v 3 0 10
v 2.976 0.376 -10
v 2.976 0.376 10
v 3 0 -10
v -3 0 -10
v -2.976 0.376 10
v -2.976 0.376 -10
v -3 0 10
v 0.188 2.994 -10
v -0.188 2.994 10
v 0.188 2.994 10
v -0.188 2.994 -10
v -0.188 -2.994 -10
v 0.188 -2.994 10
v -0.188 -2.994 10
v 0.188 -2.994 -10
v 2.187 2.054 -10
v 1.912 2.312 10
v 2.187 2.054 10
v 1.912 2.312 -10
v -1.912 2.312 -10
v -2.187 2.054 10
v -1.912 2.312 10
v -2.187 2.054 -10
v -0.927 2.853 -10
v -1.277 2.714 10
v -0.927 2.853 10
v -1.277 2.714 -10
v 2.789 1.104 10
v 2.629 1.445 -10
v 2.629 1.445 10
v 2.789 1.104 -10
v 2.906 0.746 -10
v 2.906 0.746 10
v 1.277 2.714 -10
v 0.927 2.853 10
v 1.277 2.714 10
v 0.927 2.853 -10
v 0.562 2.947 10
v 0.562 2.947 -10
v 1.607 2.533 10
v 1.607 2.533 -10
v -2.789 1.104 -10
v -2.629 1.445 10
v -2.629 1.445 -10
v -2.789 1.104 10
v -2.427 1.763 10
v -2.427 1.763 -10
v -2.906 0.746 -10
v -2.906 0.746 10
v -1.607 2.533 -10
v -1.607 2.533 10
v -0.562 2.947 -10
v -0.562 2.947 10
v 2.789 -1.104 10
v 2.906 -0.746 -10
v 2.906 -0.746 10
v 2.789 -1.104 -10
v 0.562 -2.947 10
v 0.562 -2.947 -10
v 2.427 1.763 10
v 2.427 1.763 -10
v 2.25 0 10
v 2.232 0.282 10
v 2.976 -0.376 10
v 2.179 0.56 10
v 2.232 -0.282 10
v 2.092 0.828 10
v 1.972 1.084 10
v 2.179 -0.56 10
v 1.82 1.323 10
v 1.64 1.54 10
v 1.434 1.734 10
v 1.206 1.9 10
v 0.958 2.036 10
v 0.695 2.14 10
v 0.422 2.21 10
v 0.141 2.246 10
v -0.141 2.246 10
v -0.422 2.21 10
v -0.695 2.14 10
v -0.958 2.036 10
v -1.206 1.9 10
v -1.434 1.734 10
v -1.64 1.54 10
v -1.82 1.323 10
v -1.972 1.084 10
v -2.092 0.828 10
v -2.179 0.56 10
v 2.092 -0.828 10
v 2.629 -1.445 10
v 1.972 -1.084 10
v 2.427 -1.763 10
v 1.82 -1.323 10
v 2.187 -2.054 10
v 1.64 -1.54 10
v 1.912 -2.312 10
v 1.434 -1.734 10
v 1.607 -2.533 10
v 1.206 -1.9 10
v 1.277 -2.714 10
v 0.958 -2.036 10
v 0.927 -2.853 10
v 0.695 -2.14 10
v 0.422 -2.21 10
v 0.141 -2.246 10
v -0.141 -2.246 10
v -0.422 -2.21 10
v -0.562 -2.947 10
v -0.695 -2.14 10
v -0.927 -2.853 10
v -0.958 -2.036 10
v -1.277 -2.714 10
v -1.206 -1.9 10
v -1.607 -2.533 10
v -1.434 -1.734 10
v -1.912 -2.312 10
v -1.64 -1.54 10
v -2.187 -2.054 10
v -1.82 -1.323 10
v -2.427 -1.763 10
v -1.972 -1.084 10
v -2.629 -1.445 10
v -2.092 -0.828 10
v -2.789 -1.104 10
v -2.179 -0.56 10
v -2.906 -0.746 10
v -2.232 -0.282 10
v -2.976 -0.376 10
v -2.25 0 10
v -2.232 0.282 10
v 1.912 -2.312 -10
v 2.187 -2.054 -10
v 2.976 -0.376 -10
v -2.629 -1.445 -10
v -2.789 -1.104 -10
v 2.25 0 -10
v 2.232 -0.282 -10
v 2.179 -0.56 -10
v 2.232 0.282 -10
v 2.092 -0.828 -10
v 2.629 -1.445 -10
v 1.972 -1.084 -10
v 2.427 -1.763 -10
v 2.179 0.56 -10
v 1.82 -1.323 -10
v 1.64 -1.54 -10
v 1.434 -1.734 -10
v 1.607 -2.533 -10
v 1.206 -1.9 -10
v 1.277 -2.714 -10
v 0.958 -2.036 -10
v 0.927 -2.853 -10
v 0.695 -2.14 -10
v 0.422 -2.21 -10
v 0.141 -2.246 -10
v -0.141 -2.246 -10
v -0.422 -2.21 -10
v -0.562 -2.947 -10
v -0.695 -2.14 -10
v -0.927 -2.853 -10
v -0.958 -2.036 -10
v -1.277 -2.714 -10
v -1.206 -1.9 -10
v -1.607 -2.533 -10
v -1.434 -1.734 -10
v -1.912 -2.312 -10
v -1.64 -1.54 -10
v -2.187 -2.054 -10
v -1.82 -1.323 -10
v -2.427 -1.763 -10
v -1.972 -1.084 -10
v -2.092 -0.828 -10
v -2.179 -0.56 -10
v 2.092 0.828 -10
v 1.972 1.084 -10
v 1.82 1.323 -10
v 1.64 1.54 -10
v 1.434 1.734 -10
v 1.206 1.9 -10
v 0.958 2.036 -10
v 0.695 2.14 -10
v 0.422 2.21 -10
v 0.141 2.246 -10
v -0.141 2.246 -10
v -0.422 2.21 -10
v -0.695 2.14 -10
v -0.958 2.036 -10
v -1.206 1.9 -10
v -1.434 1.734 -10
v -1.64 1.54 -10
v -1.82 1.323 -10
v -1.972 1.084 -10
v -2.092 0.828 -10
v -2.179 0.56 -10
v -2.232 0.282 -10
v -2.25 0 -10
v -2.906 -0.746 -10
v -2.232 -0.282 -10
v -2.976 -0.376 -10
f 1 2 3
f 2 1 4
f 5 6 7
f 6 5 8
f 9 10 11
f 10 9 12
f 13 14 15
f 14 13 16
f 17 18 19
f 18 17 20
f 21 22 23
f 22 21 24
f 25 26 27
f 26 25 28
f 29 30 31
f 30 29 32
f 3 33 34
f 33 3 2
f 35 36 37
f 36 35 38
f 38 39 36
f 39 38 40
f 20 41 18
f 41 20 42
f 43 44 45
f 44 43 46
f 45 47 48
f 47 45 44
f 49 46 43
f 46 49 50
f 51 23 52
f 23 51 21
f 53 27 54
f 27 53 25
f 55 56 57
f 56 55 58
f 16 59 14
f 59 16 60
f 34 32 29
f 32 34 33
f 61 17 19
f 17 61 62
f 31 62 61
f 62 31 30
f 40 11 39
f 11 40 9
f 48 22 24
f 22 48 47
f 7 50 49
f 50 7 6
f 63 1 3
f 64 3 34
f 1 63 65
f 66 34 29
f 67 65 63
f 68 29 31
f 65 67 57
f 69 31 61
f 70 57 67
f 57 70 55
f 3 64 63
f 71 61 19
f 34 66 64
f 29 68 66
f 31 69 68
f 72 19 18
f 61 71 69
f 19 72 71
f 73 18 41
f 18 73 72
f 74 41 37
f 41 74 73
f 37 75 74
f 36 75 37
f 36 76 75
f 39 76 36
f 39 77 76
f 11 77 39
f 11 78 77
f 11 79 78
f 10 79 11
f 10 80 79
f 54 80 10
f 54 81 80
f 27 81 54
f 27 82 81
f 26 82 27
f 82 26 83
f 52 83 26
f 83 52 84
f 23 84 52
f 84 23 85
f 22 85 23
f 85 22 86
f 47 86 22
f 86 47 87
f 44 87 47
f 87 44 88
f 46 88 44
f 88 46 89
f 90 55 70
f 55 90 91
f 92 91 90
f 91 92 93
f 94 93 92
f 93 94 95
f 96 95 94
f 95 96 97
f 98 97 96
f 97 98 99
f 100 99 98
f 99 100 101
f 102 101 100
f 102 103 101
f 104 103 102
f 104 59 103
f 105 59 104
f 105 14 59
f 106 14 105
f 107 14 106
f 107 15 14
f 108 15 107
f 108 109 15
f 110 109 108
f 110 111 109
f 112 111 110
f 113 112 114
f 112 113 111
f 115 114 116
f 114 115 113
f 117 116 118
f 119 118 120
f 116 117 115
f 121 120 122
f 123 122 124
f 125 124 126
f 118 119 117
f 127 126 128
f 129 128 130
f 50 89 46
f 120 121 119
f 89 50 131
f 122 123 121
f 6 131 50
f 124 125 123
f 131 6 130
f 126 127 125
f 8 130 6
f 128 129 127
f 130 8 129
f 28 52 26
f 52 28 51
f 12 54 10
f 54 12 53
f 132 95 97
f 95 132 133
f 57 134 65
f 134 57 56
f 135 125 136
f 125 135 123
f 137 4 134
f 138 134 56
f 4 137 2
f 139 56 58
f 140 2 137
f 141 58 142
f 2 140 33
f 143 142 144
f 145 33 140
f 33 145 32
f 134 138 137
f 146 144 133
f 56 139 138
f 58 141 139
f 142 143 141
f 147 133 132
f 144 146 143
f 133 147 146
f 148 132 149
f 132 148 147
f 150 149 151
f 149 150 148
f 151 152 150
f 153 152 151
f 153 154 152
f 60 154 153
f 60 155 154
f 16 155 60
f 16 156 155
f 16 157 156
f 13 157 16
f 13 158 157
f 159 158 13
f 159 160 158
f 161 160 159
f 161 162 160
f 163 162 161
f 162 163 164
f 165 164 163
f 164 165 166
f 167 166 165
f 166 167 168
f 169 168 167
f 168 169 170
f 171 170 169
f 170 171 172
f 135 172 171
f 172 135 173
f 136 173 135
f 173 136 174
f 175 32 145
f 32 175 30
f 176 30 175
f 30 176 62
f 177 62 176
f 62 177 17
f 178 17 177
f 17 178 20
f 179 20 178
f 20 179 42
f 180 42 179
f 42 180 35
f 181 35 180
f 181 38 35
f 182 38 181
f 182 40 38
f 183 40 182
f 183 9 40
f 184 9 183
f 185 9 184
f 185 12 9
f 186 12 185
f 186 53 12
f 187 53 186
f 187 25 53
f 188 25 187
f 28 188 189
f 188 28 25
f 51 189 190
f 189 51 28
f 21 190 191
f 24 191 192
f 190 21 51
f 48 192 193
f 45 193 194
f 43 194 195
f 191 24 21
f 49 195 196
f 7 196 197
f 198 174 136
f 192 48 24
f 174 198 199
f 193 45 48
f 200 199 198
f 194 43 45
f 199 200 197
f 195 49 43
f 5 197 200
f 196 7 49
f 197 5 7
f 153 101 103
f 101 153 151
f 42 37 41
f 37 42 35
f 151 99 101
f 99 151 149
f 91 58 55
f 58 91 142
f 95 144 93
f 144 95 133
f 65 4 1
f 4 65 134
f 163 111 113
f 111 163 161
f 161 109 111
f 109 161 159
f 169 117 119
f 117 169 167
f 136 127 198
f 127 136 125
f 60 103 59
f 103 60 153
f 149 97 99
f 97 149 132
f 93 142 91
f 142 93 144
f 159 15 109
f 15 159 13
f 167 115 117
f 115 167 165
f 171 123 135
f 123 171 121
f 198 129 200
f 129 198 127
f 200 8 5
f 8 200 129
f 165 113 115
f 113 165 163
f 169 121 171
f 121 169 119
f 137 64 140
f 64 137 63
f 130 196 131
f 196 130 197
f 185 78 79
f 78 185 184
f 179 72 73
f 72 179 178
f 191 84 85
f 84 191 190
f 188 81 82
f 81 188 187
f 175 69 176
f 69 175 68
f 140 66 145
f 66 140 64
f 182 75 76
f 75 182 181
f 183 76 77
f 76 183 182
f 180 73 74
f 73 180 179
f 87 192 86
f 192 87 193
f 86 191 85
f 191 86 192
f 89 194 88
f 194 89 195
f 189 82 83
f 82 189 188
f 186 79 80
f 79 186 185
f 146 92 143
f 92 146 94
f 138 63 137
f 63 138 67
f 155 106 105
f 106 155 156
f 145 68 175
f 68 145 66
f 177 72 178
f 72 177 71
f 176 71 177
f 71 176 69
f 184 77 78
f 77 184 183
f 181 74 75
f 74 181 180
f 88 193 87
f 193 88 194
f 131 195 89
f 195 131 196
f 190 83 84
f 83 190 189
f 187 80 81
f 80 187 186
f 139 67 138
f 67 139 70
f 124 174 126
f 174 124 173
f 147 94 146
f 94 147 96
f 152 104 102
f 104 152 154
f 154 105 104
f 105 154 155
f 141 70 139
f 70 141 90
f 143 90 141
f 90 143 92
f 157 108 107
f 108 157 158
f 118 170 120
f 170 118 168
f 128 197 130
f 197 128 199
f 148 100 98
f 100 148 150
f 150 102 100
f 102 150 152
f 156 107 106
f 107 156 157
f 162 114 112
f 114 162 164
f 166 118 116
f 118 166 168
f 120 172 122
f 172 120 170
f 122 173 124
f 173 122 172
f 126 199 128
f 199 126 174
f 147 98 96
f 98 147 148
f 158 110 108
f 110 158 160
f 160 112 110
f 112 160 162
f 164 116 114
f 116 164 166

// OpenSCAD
$fn = 50;


difference() {
	union() {
		translate(v = [0, 0, -10.0000000000]) {
			cylinder(h = 20, r = 3.0000000000);
		}
	}
	union() {
		translate(v = [0, 0, -100.0000000000]) {
			cylinder(h = 200, r = 2.2500000000);
		}
	}
}
